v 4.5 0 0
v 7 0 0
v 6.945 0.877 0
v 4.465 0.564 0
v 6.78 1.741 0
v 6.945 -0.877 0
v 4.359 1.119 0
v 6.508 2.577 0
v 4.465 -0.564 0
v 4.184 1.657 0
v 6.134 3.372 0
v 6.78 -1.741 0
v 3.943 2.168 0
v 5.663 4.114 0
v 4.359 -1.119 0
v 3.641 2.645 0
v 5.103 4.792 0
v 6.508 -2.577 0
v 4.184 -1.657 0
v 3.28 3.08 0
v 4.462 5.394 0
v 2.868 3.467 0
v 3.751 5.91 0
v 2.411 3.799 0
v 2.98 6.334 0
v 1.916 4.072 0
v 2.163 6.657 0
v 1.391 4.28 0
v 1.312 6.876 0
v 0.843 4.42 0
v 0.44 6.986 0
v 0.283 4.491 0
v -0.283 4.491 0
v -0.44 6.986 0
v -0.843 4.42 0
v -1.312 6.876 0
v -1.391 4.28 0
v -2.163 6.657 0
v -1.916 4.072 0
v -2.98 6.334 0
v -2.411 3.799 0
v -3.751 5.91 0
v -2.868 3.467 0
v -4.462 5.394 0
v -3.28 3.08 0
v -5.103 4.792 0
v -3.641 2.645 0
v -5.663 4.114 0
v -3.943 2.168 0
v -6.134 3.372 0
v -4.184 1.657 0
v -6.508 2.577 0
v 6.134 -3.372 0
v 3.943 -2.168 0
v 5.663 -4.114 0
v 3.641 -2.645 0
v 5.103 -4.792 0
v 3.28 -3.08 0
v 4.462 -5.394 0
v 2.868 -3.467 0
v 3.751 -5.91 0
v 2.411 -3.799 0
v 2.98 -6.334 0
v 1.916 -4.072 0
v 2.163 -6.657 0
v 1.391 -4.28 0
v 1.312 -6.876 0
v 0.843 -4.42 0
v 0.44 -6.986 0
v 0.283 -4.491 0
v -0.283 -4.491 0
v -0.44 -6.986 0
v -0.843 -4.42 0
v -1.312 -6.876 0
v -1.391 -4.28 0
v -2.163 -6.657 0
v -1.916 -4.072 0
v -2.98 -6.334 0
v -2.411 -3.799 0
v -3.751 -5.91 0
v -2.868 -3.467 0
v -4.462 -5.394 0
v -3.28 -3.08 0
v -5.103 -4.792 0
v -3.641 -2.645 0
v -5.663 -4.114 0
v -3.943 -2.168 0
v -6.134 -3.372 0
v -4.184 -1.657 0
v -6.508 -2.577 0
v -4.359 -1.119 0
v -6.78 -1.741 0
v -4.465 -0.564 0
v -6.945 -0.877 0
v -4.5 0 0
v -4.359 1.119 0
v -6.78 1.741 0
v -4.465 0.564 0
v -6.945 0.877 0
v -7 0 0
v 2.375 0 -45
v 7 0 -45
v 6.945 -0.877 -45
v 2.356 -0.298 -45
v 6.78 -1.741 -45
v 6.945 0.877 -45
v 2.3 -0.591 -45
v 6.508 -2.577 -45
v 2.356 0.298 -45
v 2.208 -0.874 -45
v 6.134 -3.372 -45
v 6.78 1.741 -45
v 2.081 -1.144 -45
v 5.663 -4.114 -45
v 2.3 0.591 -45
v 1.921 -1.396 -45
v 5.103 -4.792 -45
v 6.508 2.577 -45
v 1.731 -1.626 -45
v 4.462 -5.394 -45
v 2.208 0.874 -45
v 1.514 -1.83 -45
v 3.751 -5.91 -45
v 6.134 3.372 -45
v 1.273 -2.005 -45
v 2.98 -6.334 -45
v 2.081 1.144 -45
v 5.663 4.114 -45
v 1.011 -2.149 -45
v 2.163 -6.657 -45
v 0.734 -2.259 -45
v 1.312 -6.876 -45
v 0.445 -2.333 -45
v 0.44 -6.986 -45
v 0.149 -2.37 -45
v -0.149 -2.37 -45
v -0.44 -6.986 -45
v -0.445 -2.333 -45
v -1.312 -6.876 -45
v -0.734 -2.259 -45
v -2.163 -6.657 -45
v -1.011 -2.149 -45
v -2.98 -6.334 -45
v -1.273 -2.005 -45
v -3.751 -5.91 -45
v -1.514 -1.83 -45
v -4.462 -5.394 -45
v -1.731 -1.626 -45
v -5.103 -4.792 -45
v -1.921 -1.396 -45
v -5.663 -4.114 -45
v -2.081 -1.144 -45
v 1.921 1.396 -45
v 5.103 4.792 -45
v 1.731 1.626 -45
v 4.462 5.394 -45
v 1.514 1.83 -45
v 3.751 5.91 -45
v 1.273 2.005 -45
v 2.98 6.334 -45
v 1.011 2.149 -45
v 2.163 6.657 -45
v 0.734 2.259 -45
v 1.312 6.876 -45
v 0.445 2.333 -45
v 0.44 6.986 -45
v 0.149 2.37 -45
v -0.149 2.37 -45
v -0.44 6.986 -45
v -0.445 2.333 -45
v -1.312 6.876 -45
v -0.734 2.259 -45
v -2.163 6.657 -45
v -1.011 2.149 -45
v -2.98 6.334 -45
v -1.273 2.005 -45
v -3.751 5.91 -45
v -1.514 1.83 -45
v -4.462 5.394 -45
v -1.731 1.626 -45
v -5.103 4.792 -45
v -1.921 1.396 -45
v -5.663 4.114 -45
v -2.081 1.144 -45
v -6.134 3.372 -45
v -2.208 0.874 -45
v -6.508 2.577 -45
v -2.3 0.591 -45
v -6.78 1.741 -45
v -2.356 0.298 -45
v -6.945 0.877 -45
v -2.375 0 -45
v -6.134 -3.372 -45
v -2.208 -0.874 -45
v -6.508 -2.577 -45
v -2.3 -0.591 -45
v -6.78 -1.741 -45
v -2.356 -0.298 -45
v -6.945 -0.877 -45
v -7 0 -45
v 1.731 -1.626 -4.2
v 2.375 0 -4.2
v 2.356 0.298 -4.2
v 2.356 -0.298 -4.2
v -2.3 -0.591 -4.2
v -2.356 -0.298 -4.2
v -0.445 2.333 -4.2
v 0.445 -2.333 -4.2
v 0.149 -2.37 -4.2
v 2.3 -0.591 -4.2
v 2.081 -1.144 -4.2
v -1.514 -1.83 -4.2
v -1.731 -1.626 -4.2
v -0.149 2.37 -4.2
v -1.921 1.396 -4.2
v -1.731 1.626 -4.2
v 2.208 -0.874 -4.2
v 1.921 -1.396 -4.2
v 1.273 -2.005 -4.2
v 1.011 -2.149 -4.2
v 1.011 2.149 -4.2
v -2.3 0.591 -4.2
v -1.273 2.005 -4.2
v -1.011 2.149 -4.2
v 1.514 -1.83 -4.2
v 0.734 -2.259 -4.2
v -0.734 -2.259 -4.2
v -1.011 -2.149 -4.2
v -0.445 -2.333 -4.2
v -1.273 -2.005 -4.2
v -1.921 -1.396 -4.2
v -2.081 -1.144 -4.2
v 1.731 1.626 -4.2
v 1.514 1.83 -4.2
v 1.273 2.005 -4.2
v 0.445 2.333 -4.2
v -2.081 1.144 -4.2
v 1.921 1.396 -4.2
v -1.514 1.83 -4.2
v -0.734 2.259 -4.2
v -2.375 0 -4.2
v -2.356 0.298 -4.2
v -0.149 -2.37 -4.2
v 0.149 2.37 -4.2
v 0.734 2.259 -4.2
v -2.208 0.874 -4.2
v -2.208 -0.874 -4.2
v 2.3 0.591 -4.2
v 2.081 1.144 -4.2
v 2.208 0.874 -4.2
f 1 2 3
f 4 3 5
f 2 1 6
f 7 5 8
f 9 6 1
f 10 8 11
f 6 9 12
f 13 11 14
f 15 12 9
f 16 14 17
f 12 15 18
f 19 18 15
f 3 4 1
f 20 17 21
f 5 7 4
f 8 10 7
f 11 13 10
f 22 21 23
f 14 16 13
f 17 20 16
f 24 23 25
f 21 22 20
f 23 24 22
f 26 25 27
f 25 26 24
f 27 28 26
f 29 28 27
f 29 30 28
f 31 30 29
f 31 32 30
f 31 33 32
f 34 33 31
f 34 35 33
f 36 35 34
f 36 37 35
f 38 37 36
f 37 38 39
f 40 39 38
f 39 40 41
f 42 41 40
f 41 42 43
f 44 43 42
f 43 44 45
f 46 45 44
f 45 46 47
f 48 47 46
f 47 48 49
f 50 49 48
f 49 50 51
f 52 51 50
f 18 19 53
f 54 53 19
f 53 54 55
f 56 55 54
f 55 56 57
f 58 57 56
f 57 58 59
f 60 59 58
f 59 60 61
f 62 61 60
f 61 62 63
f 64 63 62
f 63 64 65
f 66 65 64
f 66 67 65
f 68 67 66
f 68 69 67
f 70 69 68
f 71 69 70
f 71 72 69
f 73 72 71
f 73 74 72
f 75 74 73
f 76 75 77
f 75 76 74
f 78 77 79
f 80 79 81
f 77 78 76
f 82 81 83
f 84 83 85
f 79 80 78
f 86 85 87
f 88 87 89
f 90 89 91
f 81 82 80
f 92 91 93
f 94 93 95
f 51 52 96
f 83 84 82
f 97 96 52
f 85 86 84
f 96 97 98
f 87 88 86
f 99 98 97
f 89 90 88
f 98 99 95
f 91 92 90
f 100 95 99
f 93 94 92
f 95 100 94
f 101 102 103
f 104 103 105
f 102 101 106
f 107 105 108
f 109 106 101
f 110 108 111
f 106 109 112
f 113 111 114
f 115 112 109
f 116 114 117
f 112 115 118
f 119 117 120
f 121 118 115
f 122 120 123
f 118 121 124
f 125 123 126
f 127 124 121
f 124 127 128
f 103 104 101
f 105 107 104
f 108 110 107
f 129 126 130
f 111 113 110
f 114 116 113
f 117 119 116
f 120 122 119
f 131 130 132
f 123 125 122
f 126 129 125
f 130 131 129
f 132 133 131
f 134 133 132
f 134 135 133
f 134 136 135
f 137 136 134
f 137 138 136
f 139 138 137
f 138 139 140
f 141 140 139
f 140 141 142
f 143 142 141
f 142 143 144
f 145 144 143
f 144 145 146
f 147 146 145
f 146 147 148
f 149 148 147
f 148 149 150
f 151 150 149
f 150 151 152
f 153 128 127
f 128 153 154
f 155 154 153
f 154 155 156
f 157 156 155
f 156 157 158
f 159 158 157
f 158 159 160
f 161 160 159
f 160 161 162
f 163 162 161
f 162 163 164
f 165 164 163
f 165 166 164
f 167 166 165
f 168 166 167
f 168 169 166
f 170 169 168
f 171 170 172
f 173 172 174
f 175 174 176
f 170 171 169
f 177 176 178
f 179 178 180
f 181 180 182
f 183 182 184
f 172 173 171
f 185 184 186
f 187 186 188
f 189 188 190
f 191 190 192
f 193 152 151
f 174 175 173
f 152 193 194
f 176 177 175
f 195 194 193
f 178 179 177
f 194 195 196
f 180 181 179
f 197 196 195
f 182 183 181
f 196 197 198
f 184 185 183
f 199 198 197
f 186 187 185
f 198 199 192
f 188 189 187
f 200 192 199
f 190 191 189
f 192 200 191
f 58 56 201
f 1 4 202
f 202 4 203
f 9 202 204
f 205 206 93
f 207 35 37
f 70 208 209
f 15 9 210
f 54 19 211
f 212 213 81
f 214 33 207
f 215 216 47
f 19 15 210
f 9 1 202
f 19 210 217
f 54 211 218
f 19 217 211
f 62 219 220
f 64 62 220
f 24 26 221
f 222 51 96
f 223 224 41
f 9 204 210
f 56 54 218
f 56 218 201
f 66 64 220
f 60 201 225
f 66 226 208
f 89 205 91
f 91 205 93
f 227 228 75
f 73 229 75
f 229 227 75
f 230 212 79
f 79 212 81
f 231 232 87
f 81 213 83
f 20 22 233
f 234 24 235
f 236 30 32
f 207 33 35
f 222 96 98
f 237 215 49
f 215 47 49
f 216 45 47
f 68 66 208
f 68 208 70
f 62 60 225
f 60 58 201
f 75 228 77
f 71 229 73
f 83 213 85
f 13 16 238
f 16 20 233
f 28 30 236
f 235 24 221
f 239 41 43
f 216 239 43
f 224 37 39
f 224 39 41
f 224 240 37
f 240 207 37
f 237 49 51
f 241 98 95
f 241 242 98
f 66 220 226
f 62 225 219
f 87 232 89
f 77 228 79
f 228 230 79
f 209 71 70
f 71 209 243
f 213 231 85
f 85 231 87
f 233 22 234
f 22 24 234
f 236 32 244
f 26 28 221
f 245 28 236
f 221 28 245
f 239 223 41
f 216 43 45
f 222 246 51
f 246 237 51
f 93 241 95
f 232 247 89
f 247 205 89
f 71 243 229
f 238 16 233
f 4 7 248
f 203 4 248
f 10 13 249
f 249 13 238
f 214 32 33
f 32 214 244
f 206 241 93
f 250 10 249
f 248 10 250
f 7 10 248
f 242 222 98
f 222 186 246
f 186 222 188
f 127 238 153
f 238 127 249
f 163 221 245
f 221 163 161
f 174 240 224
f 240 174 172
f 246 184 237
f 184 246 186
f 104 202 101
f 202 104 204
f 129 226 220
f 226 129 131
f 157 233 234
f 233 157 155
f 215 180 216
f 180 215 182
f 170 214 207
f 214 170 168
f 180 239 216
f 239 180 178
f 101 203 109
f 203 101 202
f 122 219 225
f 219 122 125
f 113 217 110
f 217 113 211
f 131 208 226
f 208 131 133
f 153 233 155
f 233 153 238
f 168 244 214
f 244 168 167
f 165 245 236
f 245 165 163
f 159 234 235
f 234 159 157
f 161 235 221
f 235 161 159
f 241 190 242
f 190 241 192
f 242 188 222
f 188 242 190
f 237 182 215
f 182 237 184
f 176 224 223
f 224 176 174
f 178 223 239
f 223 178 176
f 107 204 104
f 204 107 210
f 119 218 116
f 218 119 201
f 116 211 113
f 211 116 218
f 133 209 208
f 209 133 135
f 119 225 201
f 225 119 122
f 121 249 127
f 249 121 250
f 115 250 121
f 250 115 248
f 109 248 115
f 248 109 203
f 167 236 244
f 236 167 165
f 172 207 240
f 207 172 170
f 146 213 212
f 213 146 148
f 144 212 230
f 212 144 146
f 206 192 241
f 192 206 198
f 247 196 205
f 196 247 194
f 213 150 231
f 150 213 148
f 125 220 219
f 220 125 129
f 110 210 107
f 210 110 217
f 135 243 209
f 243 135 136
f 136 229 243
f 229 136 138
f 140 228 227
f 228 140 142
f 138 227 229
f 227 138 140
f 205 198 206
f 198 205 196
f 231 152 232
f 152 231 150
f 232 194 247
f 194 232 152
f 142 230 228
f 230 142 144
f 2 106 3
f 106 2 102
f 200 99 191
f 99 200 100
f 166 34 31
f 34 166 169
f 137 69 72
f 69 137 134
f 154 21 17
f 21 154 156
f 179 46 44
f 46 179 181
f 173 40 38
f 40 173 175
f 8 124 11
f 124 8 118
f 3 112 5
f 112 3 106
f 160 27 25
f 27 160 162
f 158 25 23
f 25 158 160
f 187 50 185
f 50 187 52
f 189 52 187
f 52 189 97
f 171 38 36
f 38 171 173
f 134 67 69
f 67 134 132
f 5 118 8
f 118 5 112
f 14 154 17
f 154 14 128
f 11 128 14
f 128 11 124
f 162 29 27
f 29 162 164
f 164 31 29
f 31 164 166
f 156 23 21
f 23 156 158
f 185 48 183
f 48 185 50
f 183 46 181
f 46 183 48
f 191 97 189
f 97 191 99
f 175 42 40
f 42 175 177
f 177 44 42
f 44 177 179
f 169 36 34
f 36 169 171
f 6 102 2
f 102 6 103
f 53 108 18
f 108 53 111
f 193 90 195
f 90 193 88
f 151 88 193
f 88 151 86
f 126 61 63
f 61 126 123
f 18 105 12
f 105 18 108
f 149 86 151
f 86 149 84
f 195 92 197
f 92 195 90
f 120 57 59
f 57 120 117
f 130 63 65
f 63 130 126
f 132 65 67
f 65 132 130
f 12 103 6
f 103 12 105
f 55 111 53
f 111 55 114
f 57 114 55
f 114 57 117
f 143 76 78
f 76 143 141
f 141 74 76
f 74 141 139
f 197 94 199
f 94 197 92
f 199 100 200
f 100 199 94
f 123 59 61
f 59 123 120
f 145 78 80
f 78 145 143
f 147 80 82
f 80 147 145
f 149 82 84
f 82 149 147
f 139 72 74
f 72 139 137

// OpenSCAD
$fn = 50;


difference() {
	union() {
		translate(v = [0, 0, -45.0000000000]) {
			cylinder(h = 45, r = 7.0000000000);
		}
	}
	union() {
		translate(v = [0, 0, 0]) {
			rotate(a = [0, 0, 0]) {
				difference() {
					union() {
						#translate(v = [0, 0, -45.0000000000]) {
							cylinder(h = 45, r = 2.2500000000);
						}
						#translate(v = [0, 0, -4.2000000000]) {
							cylinder(h = 4.2000000000, r = 7.0000000000, r1 = 2.3750000000, r2 = 4.5000000000);
						}
						#translate(v = [0, 0, -45.0000000000]) {
							cylinder(h = 45, r = 2.3750000000);
						}
						#translate(v = [0, 0, -45.0000000000]) {
							cylinder(h = 45, r = 2.2500000000);
						}
					}
					union();
				}
			}
		}
	}
}
